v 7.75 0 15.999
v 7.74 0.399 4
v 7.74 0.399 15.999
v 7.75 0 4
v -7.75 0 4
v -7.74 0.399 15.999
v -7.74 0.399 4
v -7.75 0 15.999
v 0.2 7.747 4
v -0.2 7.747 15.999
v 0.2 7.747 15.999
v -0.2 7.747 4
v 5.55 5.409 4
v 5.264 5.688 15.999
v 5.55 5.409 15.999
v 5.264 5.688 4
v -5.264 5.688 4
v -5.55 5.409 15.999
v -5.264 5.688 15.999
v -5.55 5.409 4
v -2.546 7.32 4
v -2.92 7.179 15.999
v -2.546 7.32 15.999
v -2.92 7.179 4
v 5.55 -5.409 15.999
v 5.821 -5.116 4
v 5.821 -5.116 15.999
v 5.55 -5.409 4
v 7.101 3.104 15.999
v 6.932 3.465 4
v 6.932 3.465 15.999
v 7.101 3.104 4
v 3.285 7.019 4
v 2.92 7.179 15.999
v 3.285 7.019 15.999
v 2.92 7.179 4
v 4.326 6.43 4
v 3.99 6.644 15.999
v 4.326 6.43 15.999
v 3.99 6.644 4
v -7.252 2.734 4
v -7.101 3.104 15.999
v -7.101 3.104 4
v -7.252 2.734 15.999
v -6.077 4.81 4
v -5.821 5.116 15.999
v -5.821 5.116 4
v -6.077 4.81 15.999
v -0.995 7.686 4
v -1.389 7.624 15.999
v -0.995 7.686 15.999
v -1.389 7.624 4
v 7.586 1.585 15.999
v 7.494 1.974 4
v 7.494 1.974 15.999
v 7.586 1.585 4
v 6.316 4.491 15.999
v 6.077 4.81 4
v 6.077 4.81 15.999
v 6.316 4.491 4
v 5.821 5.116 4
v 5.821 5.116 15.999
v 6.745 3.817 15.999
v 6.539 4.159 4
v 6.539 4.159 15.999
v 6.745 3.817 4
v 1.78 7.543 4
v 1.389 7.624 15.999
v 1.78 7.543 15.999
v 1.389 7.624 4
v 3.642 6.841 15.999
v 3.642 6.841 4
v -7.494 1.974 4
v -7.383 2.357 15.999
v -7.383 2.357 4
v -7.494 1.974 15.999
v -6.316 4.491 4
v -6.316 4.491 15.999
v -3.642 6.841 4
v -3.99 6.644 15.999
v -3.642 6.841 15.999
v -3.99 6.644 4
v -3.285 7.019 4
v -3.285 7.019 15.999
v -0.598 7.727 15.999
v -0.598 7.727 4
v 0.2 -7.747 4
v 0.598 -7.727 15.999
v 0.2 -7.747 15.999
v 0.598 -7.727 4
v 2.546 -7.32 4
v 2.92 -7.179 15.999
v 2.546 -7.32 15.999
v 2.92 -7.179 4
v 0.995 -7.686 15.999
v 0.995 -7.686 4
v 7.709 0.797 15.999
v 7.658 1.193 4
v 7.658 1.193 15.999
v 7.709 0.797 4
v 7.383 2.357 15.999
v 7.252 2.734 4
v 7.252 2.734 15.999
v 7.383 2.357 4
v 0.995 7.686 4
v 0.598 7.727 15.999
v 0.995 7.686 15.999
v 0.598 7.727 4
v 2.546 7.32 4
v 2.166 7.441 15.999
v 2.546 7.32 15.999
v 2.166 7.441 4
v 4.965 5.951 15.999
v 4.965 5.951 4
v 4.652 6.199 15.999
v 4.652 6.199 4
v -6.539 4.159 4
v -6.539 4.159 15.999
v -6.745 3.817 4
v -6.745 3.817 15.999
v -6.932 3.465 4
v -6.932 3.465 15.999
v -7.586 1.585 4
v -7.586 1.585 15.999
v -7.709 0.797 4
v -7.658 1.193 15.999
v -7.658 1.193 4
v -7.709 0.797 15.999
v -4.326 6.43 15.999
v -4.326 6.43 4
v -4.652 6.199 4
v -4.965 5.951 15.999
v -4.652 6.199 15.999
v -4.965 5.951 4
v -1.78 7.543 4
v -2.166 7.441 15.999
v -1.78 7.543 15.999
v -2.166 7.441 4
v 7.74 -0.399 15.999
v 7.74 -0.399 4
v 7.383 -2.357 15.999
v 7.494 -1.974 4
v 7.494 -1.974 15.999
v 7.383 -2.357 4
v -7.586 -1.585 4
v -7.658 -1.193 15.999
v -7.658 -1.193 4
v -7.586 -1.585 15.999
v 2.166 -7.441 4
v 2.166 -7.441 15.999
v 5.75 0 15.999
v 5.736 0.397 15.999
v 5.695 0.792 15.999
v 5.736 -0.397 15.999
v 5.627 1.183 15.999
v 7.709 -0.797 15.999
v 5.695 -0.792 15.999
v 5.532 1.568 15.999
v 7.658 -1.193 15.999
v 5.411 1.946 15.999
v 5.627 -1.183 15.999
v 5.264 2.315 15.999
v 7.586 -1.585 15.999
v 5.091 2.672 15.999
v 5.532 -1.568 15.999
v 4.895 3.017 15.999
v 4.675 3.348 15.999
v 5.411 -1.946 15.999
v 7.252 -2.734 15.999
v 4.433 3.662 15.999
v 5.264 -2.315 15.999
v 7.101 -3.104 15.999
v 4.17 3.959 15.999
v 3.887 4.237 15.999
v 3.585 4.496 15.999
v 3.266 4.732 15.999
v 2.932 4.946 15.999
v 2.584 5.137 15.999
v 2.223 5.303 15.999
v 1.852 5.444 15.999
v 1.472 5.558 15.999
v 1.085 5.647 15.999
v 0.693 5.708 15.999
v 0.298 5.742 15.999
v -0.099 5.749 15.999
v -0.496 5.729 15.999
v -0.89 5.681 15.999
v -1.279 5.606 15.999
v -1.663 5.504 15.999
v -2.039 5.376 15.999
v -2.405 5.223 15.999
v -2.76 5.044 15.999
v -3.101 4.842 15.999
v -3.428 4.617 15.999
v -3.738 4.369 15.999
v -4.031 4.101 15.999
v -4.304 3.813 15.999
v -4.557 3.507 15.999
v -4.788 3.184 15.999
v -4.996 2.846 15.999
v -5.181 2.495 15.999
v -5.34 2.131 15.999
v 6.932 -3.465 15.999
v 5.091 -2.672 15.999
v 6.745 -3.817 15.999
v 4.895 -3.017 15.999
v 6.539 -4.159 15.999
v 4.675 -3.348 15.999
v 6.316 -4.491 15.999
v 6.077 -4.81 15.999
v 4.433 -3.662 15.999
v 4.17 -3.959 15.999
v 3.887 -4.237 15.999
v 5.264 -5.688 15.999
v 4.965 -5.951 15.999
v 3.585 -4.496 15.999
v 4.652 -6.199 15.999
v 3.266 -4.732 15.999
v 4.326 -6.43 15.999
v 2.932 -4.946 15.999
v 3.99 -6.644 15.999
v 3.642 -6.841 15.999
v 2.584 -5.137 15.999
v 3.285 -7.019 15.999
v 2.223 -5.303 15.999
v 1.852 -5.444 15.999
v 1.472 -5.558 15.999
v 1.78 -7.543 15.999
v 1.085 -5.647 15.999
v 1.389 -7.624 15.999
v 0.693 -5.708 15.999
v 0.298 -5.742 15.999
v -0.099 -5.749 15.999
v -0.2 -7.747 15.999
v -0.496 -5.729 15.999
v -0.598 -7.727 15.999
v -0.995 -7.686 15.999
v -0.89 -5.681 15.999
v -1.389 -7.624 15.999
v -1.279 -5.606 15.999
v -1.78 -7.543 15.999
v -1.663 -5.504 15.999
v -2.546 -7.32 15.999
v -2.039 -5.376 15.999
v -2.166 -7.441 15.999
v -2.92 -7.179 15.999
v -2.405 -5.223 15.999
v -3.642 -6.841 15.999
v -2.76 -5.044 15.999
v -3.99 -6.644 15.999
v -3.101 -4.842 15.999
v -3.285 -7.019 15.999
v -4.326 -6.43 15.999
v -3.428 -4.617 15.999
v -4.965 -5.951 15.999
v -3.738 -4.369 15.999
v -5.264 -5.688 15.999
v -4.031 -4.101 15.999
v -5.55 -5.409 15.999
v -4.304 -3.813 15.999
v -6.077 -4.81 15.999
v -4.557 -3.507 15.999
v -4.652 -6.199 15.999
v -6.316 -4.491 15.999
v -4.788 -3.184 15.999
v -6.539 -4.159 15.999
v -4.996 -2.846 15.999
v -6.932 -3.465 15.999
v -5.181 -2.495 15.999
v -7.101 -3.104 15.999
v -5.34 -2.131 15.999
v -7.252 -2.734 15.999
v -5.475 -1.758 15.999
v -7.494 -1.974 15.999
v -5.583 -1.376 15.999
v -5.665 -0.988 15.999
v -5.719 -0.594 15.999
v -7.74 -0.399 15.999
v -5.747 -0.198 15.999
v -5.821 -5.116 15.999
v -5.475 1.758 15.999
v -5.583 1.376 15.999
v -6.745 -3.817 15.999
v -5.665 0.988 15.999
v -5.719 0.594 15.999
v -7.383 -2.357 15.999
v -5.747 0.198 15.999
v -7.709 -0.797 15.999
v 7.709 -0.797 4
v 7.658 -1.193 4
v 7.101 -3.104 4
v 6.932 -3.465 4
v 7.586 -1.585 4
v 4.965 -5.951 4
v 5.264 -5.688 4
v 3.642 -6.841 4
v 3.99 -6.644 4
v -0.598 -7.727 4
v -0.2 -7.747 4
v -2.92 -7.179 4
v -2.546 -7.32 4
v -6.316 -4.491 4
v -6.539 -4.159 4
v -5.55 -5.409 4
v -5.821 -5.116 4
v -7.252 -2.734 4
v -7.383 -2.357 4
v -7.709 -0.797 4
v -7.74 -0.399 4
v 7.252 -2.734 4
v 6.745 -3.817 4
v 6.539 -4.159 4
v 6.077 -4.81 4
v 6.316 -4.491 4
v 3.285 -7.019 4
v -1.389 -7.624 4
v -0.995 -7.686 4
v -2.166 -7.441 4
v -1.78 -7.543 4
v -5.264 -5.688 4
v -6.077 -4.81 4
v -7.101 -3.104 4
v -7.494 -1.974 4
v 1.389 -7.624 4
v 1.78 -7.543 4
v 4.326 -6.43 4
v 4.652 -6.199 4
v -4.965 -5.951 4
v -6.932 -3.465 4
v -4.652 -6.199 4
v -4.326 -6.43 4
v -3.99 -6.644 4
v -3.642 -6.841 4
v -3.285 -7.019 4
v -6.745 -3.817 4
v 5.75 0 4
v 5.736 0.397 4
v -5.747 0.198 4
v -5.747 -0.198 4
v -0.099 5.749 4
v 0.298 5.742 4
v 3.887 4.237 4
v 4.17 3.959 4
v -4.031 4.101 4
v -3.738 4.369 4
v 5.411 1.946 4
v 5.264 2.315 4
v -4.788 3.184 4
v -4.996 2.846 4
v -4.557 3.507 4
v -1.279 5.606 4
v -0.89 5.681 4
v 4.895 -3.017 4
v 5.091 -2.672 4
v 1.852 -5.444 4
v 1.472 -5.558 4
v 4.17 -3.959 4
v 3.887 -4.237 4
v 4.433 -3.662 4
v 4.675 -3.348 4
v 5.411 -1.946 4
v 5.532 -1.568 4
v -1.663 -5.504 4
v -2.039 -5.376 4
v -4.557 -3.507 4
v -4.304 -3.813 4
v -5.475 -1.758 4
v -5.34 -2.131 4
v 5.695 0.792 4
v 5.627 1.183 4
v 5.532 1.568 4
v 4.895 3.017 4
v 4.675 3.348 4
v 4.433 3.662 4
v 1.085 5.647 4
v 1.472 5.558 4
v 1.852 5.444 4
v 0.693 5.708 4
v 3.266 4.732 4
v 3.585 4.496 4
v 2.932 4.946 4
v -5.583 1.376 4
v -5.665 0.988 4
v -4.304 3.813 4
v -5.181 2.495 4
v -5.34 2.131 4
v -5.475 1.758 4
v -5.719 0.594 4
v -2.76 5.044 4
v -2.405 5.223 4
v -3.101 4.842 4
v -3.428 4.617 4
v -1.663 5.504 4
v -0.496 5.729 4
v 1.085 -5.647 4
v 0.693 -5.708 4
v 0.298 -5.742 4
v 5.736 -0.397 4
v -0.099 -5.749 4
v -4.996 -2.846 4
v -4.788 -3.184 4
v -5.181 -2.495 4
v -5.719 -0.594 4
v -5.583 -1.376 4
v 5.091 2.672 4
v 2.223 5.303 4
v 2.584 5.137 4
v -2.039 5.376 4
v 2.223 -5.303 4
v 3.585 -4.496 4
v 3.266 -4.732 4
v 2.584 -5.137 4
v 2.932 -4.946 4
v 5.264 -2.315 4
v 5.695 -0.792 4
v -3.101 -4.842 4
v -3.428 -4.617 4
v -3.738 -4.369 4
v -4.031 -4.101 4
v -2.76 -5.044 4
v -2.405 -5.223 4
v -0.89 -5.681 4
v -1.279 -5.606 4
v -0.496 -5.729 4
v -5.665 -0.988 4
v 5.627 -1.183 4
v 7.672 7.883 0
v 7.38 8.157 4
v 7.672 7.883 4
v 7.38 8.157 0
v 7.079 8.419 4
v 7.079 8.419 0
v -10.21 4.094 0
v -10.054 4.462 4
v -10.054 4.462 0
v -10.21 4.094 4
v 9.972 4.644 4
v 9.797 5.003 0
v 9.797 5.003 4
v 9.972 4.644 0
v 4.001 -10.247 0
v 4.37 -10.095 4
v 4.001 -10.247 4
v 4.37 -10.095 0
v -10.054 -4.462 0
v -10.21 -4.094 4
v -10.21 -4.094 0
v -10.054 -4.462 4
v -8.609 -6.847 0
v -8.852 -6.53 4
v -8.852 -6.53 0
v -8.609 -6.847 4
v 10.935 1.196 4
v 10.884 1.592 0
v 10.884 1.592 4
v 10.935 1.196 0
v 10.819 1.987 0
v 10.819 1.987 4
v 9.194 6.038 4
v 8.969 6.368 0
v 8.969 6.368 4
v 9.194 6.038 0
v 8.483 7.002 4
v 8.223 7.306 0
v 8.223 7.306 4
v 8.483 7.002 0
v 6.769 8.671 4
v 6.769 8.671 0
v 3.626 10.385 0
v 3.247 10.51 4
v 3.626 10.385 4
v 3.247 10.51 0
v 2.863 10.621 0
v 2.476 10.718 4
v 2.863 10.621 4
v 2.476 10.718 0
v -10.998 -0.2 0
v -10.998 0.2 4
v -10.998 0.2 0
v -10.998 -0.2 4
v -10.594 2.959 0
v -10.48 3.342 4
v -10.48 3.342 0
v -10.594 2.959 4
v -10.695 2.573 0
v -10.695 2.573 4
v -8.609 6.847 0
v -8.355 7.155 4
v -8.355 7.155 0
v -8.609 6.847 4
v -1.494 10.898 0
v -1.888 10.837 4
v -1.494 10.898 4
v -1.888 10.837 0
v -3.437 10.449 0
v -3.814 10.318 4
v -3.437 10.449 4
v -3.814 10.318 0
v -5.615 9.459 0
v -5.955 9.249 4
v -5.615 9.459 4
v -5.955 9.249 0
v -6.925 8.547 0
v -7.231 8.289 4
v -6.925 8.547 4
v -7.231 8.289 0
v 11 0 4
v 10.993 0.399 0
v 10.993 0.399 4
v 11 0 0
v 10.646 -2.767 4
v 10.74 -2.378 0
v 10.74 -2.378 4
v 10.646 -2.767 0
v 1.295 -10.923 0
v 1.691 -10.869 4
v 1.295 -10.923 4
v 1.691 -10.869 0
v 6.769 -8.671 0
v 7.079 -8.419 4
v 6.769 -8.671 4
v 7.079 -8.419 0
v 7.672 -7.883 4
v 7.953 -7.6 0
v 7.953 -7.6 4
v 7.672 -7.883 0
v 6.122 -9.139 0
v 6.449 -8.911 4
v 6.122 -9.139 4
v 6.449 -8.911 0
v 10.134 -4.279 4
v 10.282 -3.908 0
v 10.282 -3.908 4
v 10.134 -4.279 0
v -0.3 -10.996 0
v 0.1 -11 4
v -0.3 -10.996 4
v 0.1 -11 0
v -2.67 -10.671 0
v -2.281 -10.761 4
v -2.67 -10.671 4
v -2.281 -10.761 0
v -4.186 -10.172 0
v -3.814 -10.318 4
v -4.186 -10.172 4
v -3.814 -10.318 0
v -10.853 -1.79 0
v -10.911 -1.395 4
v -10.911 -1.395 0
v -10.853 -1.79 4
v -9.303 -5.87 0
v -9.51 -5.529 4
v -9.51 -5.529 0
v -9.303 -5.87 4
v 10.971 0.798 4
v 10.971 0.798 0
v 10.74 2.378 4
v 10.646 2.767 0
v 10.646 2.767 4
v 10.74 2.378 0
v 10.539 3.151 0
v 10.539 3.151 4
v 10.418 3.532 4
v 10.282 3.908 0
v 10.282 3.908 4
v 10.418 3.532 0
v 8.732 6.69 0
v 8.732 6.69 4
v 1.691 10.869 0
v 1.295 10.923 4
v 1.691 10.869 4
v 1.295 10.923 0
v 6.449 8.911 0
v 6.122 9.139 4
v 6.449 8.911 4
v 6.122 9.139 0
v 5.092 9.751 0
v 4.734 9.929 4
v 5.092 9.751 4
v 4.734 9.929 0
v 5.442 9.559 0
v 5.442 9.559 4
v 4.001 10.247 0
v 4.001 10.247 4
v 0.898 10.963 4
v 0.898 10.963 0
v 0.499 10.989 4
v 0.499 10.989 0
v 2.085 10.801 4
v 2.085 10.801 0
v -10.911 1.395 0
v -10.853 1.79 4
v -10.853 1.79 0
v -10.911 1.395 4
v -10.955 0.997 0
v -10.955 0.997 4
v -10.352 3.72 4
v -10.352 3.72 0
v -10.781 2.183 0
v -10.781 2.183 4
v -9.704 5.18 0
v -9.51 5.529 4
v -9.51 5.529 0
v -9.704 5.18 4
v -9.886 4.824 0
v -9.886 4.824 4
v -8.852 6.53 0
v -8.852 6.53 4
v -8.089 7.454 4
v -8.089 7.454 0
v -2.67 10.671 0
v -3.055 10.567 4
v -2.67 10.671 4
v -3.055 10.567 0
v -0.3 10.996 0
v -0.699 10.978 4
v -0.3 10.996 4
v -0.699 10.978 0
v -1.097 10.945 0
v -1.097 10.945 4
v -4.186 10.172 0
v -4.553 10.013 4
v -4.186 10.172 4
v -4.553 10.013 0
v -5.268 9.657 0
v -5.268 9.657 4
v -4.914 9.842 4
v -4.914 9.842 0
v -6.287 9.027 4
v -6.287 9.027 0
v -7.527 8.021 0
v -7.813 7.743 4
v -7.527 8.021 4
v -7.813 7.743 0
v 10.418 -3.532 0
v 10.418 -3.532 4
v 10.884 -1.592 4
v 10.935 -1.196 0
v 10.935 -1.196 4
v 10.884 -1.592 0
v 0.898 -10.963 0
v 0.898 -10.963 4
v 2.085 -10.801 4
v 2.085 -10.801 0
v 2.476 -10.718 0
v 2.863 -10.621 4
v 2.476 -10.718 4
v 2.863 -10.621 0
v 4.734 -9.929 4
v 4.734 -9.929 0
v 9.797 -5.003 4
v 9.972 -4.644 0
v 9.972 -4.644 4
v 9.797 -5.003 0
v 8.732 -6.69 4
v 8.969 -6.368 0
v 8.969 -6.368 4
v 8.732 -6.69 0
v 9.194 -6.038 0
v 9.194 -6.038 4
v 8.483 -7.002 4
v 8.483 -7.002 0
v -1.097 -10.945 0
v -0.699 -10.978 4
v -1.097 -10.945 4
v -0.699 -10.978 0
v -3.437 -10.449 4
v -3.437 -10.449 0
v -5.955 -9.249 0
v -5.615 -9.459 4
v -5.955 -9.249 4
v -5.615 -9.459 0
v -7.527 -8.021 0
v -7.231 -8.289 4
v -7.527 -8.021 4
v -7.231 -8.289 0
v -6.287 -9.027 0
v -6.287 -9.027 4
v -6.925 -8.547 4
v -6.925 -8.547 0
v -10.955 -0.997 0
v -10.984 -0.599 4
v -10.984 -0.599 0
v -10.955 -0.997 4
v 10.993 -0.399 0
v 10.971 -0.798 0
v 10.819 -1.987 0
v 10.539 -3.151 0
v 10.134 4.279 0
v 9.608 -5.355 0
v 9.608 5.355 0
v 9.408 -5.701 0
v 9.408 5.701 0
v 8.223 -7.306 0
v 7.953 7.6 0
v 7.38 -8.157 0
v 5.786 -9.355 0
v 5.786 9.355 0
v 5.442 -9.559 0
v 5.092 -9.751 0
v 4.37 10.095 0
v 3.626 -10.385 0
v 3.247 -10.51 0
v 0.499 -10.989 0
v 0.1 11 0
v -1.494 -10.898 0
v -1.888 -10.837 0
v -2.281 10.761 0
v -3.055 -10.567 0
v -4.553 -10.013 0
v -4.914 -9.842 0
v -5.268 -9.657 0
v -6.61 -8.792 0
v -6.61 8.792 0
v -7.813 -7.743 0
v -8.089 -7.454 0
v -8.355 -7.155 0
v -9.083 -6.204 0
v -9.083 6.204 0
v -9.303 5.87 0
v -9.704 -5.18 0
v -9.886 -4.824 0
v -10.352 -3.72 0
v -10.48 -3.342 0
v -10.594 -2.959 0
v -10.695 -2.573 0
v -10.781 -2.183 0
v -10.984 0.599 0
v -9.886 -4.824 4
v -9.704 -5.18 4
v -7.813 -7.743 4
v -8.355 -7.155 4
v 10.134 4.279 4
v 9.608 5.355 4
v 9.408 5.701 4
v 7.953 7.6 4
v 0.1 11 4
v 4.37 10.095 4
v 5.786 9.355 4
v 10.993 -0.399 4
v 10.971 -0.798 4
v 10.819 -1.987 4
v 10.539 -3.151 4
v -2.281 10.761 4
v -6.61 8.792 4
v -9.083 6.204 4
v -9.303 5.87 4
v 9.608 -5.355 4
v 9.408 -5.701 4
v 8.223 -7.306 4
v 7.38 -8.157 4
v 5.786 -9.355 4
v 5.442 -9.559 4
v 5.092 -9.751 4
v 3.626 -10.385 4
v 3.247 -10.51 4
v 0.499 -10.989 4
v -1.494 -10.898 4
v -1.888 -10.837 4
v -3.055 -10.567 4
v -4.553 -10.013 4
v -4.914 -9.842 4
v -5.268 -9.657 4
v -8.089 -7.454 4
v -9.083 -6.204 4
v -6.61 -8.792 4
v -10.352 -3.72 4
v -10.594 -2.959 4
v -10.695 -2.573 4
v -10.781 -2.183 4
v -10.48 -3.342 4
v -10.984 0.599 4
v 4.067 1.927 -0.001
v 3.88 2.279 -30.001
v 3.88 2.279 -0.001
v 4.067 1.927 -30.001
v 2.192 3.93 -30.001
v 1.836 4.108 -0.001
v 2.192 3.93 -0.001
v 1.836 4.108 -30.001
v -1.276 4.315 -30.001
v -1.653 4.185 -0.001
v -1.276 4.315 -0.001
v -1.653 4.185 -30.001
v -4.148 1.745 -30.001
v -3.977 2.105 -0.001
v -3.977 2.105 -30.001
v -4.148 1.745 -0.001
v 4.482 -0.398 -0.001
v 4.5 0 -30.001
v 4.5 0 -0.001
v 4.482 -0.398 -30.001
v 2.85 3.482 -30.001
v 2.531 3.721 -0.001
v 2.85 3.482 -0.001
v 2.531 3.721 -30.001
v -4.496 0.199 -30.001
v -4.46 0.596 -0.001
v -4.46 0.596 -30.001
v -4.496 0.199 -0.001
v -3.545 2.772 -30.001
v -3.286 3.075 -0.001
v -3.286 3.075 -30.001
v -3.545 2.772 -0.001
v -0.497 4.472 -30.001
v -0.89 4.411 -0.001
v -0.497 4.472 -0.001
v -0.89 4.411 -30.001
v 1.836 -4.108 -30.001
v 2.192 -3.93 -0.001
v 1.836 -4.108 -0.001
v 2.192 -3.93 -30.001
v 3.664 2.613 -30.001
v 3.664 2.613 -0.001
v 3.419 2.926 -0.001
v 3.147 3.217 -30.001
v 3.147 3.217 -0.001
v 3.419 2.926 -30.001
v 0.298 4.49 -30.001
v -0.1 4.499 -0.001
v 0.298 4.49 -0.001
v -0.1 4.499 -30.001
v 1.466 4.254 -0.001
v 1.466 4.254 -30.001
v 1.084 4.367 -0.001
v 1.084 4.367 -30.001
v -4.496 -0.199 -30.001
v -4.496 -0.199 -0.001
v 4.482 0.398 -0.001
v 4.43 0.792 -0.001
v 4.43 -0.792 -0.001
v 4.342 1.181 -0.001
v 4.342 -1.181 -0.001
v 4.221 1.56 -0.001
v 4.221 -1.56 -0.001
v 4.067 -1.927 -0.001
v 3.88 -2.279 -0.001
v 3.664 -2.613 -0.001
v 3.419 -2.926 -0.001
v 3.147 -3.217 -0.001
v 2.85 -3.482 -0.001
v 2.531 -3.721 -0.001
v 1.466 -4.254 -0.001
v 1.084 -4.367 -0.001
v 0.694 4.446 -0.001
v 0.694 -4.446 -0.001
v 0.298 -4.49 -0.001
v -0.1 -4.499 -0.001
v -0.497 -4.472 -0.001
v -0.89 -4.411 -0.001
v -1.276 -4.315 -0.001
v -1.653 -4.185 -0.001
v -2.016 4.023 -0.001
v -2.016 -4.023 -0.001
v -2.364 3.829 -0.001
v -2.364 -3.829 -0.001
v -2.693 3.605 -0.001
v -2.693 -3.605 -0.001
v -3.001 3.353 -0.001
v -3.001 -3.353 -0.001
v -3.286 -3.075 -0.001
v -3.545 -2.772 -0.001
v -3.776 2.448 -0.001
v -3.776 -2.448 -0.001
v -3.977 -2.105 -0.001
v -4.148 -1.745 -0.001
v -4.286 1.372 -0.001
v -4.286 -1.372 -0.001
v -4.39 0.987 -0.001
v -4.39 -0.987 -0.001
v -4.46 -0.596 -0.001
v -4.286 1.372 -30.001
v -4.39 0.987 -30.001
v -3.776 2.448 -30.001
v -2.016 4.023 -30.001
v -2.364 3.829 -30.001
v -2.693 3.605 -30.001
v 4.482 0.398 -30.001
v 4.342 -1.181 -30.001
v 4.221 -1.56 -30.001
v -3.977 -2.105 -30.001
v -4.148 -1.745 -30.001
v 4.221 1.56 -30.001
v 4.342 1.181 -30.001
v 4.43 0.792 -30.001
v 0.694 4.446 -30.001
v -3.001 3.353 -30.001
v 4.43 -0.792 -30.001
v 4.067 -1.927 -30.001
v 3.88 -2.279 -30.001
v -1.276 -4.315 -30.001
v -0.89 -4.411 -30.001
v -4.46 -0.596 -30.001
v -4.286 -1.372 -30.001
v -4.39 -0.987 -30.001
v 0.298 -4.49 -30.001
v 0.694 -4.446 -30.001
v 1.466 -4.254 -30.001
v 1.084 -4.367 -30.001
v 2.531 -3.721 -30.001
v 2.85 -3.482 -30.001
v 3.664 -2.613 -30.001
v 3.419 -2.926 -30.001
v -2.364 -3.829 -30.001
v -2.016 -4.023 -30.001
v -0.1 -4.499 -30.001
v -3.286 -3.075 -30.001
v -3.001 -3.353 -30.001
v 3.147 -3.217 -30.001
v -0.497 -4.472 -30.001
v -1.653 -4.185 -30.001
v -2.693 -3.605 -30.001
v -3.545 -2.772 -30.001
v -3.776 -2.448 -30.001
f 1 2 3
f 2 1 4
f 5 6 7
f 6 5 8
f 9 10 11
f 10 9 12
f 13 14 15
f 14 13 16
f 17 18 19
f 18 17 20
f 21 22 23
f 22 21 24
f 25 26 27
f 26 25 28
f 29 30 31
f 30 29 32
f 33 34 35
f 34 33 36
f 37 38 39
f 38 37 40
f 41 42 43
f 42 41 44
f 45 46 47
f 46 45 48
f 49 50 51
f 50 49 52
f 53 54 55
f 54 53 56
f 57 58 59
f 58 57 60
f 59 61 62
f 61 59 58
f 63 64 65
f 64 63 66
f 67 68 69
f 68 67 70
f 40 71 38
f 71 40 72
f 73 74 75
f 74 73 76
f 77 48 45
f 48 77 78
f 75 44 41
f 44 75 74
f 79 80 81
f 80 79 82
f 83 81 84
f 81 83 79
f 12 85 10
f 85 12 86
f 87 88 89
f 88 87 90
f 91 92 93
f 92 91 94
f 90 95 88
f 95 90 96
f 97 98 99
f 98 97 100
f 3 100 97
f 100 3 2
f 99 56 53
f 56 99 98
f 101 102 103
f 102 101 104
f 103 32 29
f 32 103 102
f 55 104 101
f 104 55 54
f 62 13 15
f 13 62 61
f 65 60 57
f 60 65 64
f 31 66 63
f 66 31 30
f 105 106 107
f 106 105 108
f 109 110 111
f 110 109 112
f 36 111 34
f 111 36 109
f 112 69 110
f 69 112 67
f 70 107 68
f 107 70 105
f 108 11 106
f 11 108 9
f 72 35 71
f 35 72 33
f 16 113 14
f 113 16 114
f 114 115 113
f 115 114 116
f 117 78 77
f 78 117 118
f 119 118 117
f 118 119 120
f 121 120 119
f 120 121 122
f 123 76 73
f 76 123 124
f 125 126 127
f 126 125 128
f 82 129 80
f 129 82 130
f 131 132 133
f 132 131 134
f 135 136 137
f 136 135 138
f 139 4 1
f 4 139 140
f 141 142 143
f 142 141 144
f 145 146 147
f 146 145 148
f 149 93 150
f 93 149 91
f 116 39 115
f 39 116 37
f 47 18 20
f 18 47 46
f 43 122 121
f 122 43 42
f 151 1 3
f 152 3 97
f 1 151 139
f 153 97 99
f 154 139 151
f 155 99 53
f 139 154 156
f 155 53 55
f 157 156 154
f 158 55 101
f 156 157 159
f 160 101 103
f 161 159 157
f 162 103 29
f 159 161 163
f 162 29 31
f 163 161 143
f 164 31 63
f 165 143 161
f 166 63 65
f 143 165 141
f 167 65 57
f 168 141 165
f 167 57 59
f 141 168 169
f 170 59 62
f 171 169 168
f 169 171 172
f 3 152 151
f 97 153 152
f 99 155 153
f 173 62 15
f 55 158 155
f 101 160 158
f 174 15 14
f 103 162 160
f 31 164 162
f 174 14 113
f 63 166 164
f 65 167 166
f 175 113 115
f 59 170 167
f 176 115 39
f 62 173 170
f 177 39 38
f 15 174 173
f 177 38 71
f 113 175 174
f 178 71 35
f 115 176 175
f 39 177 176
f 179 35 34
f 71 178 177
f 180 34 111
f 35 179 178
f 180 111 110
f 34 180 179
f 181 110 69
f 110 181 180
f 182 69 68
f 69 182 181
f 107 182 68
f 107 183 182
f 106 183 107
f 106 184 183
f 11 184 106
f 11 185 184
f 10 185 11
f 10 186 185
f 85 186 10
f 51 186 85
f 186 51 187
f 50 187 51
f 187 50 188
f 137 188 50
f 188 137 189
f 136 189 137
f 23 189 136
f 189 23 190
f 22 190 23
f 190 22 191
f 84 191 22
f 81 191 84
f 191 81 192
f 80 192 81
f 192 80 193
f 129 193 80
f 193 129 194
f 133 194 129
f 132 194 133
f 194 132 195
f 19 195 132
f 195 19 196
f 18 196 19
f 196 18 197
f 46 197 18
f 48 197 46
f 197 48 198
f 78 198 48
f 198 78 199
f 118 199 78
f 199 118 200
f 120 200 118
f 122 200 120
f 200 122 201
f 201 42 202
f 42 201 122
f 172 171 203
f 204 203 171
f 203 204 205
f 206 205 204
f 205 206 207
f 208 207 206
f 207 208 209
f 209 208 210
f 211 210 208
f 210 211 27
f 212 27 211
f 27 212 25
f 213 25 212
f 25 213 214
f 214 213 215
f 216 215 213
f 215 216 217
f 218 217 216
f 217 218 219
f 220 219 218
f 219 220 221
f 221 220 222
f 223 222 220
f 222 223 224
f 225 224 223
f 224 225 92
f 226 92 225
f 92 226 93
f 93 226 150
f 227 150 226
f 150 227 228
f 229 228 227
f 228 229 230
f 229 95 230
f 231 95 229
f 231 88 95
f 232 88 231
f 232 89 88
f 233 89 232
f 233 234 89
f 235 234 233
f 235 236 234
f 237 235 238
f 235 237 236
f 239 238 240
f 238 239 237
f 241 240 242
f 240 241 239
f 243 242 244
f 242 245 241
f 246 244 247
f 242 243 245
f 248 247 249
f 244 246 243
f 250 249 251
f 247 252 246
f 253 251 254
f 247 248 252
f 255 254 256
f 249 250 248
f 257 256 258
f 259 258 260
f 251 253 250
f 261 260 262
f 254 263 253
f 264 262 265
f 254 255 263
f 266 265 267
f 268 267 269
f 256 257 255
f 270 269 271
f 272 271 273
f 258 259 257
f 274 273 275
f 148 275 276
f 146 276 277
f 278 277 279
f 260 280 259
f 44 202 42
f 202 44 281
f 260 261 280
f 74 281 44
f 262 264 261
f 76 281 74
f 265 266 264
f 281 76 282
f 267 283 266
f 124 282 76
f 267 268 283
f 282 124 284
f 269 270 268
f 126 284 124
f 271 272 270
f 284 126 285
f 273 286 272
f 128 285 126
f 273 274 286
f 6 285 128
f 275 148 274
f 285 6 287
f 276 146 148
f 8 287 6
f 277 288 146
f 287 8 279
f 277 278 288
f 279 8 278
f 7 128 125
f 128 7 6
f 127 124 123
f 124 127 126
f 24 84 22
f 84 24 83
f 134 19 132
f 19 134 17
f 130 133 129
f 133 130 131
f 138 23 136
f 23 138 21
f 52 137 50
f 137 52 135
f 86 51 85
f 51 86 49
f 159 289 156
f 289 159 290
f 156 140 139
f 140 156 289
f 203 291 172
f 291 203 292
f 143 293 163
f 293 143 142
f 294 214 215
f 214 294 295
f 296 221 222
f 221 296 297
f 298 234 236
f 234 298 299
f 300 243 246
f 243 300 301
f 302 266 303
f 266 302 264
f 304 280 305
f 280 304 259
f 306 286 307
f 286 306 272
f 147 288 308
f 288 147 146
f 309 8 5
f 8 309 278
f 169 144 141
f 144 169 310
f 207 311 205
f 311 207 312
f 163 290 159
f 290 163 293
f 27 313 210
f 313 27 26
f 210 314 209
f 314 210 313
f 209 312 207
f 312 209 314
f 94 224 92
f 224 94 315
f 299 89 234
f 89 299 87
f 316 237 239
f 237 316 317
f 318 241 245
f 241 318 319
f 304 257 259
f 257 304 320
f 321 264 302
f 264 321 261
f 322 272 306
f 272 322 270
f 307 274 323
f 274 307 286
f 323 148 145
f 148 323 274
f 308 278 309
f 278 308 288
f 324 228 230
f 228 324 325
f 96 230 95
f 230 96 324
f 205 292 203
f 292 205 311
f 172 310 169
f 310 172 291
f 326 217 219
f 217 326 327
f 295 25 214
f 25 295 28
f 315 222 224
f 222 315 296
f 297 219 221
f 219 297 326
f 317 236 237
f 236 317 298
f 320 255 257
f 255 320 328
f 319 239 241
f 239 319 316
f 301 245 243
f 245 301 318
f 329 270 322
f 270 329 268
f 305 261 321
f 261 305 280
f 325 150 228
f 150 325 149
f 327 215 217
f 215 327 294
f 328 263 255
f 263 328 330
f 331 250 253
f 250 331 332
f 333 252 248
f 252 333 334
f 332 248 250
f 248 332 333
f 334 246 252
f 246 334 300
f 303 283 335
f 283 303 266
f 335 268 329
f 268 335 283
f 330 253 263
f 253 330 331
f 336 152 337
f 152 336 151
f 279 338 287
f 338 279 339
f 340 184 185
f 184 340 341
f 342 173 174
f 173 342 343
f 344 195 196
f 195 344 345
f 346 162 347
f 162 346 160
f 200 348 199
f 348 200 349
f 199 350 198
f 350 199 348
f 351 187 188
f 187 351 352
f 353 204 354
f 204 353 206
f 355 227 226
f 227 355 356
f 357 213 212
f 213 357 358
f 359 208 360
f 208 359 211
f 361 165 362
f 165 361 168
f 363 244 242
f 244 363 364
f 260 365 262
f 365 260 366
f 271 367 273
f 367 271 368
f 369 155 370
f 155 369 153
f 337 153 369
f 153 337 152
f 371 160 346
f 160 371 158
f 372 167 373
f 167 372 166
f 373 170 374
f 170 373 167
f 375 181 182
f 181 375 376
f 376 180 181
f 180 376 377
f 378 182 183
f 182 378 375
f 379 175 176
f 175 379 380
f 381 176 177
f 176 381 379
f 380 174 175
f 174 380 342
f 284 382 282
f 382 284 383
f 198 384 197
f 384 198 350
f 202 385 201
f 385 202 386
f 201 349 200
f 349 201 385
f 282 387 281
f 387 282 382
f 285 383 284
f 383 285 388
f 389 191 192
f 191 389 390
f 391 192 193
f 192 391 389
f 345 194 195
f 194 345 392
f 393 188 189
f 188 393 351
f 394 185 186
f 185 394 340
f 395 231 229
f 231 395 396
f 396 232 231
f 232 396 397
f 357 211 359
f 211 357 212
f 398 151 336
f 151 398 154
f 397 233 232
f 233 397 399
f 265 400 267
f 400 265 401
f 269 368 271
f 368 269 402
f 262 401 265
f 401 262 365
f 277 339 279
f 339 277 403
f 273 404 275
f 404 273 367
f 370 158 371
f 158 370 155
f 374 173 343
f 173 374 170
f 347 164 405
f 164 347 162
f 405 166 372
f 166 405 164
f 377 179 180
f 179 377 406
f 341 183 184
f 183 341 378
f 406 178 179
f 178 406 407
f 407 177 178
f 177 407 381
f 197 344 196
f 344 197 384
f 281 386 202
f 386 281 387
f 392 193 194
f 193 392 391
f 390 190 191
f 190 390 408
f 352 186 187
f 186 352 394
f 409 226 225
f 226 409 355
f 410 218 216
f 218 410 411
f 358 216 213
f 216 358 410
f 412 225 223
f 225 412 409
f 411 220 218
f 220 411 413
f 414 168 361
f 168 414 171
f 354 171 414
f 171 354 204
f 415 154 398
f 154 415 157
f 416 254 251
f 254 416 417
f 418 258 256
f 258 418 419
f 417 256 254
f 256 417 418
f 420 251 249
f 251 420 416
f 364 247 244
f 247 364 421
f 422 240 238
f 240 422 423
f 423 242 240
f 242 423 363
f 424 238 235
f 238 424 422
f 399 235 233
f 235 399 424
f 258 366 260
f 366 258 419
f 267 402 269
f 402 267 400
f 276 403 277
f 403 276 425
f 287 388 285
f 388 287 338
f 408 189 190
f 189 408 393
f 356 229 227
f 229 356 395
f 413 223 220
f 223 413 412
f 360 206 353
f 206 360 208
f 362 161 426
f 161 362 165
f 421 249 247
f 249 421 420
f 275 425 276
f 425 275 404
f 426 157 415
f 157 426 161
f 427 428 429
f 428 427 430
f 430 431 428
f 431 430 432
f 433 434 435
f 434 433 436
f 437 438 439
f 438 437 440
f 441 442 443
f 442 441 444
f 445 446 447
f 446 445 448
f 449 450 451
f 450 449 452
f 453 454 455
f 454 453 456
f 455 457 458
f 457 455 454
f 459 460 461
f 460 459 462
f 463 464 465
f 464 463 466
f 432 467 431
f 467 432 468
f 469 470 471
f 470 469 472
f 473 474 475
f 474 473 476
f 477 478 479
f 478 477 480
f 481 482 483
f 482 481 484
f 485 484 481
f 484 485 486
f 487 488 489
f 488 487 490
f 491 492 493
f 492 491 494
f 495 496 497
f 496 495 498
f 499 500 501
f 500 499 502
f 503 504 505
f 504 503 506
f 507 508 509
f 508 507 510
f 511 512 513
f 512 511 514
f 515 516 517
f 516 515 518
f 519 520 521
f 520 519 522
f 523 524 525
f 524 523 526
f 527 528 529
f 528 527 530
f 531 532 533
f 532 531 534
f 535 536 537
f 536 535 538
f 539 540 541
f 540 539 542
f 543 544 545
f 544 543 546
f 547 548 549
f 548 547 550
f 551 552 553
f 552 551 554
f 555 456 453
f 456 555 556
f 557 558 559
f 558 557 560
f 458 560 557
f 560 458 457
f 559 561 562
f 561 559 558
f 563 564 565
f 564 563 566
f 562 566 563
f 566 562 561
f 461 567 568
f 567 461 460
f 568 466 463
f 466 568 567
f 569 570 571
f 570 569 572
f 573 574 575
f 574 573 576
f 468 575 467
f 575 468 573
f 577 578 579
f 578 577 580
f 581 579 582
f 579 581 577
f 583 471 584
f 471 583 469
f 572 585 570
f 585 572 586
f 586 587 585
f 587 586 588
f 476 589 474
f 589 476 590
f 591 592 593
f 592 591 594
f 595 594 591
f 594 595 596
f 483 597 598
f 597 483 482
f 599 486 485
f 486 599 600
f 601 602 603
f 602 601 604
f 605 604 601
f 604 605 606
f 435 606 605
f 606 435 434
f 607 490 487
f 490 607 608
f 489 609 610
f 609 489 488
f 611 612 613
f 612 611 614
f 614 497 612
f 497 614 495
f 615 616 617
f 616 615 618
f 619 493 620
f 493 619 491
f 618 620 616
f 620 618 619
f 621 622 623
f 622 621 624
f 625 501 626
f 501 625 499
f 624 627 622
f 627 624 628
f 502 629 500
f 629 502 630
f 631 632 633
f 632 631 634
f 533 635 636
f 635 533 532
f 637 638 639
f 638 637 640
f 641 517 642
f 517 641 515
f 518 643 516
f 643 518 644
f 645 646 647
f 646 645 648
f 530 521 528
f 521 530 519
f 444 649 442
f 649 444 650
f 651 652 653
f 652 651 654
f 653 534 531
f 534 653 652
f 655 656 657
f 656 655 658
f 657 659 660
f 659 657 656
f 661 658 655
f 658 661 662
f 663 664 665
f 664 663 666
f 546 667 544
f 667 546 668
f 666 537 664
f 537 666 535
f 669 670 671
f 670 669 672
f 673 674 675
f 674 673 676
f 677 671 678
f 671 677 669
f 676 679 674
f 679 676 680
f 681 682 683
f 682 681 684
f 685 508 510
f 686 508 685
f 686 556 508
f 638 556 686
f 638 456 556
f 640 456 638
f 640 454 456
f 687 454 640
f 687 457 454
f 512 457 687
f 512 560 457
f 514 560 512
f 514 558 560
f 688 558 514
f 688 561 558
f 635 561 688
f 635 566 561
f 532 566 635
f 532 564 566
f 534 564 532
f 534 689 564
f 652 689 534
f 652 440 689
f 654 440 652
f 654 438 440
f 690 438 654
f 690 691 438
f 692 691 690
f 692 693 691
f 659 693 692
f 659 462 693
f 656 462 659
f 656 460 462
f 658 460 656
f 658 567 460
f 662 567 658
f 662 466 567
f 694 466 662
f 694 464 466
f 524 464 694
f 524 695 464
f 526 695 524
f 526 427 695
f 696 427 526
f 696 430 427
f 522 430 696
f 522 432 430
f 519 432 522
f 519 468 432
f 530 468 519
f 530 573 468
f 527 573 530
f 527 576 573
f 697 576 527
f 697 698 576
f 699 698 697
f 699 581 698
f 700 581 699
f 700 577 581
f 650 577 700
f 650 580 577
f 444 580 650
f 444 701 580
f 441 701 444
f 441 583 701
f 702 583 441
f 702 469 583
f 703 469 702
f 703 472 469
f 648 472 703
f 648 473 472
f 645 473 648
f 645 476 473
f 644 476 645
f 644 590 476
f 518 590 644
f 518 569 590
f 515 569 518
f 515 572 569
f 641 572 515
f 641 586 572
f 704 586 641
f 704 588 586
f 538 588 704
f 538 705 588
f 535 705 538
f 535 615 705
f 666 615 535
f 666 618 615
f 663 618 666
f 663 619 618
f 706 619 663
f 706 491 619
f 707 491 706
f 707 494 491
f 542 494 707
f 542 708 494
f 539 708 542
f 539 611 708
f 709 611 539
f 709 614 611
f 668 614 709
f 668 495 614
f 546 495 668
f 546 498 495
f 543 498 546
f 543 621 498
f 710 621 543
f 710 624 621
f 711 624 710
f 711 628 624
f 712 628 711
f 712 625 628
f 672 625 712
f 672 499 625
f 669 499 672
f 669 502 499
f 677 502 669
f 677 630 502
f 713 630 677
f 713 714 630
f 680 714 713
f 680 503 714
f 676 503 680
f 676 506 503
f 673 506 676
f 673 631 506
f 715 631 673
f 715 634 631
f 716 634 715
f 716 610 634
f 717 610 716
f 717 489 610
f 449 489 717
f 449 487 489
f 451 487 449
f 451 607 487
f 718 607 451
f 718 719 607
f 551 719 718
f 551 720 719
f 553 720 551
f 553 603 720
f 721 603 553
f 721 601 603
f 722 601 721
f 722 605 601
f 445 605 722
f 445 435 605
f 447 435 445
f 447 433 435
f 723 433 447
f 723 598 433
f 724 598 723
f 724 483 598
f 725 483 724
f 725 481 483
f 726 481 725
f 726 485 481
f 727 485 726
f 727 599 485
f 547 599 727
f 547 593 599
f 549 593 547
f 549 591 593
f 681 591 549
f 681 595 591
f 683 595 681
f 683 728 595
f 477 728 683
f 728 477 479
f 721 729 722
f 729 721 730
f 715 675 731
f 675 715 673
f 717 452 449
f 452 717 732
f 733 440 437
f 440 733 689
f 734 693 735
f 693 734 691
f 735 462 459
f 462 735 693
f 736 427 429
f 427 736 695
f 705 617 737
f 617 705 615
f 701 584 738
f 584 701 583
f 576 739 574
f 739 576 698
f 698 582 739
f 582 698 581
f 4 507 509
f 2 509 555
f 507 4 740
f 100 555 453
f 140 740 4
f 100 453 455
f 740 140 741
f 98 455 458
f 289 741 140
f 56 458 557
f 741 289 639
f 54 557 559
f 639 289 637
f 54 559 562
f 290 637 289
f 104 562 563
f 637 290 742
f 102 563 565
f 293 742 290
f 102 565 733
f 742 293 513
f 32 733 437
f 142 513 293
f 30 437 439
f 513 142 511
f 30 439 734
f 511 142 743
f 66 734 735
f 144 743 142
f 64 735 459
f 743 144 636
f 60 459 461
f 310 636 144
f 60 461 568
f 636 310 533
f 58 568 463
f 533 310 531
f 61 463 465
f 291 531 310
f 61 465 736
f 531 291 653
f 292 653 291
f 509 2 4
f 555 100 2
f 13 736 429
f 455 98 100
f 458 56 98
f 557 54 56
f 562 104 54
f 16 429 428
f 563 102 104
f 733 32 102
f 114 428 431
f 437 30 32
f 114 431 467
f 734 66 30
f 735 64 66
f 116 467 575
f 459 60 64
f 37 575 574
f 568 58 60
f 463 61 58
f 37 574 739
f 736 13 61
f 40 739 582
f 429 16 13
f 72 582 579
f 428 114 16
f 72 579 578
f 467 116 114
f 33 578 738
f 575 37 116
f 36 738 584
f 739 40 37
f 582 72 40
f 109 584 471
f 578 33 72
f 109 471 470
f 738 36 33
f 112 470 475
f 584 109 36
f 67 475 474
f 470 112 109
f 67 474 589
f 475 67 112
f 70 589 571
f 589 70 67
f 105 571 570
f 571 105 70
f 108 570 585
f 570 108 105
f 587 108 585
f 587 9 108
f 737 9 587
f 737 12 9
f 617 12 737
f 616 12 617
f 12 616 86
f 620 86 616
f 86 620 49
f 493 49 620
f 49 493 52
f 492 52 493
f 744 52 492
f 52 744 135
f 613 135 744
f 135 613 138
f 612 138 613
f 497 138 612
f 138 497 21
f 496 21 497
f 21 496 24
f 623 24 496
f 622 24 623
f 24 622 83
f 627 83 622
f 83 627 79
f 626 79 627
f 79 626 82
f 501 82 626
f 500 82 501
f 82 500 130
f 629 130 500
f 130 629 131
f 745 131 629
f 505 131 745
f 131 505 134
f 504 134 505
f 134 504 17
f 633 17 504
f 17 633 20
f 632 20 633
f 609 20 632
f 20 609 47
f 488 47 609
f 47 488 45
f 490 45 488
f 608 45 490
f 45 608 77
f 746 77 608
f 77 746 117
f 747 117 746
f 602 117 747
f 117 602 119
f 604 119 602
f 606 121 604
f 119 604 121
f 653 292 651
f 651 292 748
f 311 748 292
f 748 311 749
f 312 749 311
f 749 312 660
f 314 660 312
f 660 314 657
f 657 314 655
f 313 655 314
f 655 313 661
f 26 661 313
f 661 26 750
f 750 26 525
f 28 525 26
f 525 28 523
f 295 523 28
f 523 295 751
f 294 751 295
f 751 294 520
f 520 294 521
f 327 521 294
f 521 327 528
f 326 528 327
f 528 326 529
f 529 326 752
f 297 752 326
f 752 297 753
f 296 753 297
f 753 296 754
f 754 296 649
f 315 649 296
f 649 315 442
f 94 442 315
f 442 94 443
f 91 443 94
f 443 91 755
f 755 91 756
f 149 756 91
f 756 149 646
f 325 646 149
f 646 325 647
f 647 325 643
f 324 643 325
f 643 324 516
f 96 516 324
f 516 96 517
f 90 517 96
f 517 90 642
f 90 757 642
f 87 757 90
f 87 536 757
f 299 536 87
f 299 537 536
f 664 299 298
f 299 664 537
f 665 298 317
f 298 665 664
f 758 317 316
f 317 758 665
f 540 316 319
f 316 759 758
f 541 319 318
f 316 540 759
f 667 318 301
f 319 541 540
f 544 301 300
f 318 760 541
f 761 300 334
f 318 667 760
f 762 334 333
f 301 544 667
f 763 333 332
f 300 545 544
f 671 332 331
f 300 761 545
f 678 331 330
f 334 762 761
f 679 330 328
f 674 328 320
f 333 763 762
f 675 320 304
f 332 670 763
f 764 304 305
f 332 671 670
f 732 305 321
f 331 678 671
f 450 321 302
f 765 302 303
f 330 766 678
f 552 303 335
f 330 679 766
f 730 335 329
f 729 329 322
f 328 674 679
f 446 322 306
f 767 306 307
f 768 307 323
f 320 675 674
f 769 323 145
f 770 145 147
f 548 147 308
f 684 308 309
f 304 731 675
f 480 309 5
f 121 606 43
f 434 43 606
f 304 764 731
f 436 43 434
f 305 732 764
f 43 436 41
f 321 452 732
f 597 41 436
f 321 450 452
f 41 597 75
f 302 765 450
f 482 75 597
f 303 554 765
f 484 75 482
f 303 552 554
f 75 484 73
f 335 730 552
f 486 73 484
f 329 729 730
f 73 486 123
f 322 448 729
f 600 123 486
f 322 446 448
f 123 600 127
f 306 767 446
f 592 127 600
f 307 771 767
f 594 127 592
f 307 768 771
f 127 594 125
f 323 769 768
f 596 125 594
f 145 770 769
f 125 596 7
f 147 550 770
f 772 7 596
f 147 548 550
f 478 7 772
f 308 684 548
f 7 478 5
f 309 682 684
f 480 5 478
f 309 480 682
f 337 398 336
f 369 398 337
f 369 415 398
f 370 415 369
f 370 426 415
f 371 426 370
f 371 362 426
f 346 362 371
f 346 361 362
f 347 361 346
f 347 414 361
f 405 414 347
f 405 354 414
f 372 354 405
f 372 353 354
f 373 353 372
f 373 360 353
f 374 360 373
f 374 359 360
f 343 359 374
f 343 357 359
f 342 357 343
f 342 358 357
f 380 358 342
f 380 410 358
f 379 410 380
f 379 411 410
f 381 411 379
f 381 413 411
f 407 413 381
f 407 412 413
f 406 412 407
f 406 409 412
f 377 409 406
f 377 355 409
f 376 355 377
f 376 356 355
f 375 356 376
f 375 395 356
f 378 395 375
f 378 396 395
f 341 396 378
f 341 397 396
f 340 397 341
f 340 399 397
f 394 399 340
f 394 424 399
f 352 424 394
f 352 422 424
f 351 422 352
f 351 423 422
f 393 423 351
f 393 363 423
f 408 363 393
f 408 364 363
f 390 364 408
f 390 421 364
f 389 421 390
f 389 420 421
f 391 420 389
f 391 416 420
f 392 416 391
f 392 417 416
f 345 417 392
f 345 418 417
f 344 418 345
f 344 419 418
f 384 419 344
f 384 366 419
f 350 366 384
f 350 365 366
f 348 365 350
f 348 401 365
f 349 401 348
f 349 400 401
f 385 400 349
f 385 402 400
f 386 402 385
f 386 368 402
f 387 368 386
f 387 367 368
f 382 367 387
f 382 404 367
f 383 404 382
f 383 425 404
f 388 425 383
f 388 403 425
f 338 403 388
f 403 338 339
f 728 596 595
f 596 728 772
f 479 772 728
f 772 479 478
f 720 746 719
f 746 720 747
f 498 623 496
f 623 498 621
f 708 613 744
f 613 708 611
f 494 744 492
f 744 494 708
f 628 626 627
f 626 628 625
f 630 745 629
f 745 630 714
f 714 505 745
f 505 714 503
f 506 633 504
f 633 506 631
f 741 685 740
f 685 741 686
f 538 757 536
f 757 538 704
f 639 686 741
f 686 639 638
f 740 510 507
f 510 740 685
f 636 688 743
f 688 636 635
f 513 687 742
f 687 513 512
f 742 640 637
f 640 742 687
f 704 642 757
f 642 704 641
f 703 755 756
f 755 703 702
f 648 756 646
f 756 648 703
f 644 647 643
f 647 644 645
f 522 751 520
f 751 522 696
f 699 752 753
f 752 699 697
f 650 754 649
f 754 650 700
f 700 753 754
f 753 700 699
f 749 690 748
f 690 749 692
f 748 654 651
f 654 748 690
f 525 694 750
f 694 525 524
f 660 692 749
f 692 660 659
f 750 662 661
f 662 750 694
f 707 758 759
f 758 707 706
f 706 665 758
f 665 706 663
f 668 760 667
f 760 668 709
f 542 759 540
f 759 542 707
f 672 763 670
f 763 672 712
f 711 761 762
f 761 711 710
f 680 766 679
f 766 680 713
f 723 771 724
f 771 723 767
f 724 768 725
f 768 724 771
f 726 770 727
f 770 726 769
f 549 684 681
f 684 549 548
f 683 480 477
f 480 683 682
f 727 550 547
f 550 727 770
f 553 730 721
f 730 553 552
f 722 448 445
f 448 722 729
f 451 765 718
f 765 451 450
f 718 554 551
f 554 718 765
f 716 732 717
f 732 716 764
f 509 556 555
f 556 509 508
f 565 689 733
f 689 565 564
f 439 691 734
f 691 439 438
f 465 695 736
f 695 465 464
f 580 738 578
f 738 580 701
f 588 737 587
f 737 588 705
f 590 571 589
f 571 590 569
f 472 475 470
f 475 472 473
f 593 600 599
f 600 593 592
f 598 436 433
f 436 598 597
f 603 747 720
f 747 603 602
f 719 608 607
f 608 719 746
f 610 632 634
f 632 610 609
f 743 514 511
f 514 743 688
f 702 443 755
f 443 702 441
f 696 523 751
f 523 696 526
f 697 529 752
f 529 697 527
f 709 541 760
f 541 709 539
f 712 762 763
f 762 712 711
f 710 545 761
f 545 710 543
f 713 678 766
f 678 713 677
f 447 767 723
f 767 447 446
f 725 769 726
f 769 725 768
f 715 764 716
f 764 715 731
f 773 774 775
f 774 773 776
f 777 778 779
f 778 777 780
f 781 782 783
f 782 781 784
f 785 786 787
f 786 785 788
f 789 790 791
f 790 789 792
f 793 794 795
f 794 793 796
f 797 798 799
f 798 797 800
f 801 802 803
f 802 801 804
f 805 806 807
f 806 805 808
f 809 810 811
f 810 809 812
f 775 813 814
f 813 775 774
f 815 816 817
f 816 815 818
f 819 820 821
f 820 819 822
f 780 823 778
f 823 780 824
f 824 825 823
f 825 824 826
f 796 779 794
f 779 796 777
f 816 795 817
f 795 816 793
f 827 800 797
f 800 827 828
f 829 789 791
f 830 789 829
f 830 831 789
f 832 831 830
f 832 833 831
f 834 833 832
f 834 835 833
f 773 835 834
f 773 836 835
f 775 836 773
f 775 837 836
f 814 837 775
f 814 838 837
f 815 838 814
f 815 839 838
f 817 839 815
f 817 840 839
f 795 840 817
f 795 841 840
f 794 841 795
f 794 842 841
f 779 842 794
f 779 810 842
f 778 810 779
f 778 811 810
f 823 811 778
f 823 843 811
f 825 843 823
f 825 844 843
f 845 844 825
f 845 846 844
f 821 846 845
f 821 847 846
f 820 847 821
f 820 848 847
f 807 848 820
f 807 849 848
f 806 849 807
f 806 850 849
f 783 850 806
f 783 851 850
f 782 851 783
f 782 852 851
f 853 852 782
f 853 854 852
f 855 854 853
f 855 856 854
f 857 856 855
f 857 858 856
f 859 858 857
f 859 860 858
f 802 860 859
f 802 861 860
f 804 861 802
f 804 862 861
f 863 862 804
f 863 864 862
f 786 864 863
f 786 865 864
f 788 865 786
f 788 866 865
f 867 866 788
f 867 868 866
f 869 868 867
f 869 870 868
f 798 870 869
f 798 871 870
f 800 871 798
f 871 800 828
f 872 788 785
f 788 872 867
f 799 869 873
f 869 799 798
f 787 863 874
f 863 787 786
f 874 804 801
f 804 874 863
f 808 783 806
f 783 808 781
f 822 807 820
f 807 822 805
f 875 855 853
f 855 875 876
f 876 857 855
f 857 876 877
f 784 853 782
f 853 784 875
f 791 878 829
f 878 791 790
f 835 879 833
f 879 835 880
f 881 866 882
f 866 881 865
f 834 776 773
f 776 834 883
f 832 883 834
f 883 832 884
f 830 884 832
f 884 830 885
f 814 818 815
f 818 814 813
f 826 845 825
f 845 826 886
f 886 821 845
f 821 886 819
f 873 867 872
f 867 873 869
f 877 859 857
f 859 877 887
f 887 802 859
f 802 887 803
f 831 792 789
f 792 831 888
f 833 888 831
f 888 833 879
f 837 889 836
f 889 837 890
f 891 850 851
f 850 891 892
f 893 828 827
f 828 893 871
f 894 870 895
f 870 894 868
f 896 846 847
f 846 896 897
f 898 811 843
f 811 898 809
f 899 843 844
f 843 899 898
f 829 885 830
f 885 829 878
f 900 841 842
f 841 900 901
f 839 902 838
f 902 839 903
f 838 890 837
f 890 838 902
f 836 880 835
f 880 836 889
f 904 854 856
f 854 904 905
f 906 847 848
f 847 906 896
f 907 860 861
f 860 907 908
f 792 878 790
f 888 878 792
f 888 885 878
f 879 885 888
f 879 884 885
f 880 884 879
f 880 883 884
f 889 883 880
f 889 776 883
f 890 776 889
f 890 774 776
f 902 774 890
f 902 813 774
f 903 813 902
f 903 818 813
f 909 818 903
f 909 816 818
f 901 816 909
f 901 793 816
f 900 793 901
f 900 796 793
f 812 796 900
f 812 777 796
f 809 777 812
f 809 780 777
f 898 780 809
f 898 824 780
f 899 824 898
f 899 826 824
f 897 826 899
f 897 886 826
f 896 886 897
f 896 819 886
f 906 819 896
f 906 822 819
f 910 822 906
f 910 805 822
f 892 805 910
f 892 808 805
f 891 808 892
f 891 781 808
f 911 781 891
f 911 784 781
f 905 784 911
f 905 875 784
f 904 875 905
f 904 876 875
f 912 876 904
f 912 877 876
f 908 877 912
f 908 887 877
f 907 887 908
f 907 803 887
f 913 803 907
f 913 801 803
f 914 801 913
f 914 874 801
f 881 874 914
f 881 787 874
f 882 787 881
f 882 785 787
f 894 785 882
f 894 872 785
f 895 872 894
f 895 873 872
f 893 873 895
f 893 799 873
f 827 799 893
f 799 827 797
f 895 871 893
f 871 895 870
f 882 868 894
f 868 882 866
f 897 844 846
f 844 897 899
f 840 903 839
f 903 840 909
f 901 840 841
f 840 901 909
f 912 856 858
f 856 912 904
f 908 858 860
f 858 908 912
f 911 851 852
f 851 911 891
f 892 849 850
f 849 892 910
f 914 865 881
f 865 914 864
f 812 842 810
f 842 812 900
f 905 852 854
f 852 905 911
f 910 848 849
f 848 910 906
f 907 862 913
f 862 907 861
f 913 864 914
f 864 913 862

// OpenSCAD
$fa = 1;
$fs = 0.4;
merge_offset=0.001;

// post_insert
post_insert_radius=4.5;
post_insert_diameter=2*post_insert_radius;
post_insert_height=30;

// The post_insert that gets inserted into the tube
module post_insert() {
    cylinder(h=post_insert_height,r=post_insert_radius);
}
//post_insert();

star_stem_radius=5.75;
star_stem_diameter=2*star_stem_radius;
star_stem_height=12;
// The star stem is padded to be subtracted from the receiver
module star_stem() {
    translate([0,0,-1]) {
     cylinder(h=star_stem_height+2,r=star_stem_radius);
    }    
    
}
//star_stem();


star_stem_receiver_radius=7.75;
star_stem_receiver_diameter=2*star_stem_receiver_radius;
star_stem_receiver_height=12;
module star_stem_receiver() {
    difference() {
        cylinder(h=star_stem_receiver_height,r=star_stem_receiver_radius);
        star_stem();
    }
}
// star_stem_receiver();


light_stop_radius=11;
light_stop_diameter=2*light_stop_radius;
light_stop_height=4;
// The star stem is padded to be subtracted from the receiver
module light_stop() {
  cylinder(h=light_stop_height,r=light_stop_radius);
}
//light_stop();


light_stop();
translate([0,0,light_stop_height-merge_offset]) { star_stem_receiver(); }
translate([0,0,-post_insert_height-merge_offset]) { post_insert(); }
